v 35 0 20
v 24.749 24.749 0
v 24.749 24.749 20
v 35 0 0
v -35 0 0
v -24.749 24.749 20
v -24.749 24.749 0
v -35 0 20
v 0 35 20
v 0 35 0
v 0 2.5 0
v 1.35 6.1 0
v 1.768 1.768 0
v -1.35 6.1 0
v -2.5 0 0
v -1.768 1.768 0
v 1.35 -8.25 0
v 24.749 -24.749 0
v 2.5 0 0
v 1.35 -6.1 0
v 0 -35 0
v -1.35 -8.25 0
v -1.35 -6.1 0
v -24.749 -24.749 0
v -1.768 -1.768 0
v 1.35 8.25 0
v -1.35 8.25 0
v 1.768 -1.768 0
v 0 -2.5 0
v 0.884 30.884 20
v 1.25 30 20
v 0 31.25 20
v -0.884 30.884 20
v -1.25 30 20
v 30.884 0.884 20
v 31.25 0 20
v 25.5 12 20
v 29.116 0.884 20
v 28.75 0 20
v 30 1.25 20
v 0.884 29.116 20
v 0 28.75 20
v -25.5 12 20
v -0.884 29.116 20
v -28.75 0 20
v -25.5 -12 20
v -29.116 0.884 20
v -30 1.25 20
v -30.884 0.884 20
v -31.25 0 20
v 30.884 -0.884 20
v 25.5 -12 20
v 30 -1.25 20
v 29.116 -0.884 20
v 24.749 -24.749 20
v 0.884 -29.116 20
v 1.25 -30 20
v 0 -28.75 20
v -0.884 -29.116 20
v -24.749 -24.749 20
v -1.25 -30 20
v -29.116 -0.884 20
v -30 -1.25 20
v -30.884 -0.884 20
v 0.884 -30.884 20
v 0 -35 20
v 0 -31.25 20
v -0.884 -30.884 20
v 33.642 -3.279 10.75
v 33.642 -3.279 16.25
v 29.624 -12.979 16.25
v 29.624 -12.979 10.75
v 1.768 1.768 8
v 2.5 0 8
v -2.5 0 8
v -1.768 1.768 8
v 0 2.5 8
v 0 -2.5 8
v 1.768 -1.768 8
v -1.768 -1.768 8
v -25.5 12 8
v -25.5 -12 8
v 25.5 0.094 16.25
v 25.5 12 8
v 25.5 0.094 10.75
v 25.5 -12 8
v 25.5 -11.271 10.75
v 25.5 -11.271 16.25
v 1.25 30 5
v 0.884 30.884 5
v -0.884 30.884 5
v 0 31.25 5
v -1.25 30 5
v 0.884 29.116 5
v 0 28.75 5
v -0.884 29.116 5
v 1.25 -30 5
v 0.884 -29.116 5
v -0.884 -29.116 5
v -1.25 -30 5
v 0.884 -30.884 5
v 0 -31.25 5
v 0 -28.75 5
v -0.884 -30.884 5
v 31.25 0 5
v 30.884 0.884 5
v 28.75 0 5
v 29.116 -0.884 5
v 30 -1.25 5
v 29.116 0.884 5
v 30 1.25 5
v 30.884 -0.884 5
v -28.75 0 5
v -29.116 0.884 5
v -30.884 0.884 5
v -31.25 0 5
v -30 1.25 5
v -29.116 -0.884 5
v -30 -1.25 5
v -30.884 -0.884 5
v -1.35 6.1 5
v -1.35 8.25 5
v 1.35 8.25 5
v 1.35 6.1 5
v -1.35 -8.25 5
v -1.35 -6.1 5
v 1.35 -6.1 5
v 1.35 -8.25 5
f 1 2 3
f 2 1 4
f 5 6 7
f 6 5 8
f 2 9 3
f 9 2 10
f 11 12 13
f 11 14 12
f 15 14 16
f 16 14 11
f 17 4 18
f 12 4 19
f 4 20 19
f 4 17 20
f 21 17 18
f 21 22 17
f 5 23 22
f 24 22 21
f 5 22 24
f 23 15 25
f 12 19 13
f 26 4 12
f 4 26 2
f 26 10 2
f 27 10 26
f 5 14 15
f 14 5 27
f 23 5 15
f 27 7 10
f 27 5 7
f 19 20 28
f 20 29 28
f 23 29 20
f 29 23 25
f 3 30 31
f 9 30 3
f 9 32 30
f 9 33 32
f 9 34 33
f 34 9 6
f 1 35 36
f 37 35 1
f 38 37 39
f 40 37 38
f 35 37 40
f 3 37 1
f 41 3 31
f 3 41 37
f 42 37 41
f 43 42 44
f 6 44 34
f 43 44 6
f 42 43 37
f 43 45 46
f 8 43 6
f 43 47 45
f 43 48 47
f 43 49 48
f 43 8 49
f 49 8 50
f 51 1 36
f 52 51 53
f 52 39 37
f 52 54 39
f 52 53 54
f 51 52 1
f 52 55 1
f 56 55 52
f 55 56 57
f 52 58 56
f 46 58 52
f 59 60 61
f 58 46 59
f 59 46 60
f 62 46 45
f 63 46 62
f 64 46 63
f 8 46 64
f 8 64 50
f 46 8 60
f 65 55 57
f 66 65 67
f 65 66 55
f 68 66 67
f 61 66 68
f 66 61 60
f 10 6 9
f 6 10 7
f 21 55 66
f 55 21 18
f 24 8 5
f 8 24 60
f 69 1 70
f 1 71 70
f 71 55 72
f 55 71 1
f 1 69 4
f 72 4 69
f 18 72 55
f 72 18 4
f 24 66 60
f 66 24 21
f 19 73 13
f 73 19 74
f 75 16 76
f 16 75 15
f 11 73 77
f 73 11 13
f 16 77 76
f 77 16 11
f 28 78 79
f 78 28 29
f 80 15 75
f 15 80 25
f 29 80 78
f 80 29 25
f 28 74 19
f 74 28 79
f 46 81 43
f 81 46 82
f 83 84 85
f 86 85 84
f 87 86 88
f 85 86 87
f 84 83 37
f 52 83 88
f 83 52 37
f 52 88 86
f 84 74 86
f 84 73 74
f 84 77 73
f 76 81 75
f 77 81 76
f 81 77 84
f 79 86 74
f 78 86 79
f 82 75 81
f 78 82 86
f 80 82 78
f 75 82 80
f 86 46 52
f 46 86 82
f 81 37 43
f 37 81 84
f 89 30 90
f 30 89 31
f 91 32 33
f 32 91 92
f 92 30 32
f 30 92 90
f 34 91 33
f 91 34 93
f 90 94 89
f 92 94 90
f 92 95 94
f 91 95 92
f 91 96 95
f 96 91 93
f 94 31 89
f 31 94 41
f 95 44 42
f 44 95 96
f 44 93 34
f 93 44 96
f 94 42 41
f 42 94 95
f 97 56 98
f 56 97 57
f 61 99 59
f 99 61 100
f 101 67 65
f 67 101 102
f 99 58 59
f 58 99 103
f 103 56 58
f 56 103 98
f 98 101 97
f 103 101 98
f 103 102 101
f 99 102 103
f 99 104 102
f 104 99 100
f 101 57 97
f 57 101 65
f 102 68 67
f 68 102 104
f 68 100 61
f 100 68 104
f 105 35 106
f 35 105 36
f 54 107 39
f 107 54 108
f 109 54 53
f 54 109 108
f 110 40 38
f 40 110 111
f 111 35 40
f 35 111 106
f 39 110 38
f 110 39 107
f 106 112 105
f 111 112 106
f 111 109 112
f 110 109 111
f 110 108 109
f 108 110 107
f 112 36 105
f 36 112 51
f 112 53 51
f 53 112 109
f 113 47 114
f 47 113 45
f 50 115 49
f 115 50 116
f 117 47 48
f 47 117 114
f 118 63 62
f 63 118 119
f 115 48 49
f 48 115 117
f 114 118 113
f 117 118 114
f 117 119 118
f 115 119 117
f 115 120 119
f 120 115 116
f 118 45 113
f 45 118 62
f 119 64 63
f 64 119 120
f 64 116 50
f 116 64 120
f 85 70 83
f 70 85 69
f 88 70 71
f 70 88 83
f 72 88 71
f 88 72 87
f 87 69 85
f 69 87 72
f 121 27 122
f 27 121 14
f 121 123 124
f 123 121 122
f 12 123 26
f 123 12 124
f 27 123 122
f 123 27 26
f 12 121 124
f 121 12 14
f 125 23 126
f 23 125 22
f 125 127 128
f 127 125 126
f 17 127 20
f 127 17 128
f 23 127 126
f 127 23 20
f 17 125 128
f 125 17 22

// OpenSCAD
$fn = 8;

foot_height = 20;
foot_diameter = 70;

switch_length = 10.5;
switch_width = 10;
switch_height = 5.5;

led_height = 20;
led_diameter = 5;

battery_height = 12;
battery_length = 45 + 5 + 1;
battery_width = 2 * battery_height;

screw_diameter = 2.5;
screw_length = 15;

crystal_foot_width = 2.15;
crystal_foot_length = 2.7;
crystal_foot_height = 5;
crystal_foot_distance = 16.5;



module crystal_foot(){
    translate([0,0,crystal_foot_height/2])
    cube([crystal_foot_length, crystal_foot_width, crystal_foot_height],center = true);
}


difference(){
    cylinder(foot_height, foot_diameter/2, foot_diameter/2);
    cylinder(led_height, led_diameter/2, led_diameter/2);


    translate([0,0,- battery_height/2 + foot_height]){
        cube([battery_length, battery_width, battery_height], center = true);
    }
    
    translate([0,foot_diameter/2 - 5,0]){
        translate([0,0,foot_height - screw_length]){
            cylinder(screw_length, screw_diameter/2, screw_diameter/2);
        }
    }

    translate([0,-(foot_diameter/2 - 5),0]){
        translate([0,0,foot_height - screw_length]){
            cylinder(screw_length, screw_diameter/2, screw_diameter/2);
        }
    }
    
        translate([foot_diameter/2 - 5,0,0]){
        translate([0,0,foot_height - screw_length]){
            cylinder(screw_length, screw_diameter/2, screw_diameter/2);
        }
    }

    translate([-(foot_diameter/2 - 5),0,0]){
        translate([0,0,foot_height - screw_length]){
            cylinder(screw_length, screw_diameter/2, screw_diameter/2);
        }
    }
    
    translate([foot_diameter/2-7.3,-switch_length +4,foot_height-battery_height+switch_height]){
        rotate([0,0,67.5]){
            cube([switch_length, switch_width, switch_height], center = true);
        }
    }
    translate([0,(crystal_foot_distance - crystal_foot_width)/2,0]) crystal_foot();
    translate([0,-(crystal_foot_distance - crystal_foot_width)/2,0]) crystal_foot();
}
